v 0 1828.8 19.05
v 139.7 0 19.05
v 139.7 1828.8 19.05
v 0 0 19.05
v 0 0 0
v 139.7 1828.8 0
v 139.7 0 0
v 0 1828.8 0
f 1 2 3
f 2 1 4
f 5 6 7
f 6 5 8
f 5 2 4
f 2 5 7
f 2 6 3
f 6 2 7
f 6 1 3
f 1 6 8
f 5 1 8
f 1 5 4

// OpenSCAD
/* dimensions in mm
*/
inch = 25.4;
lumberinch = inch*0.75;
lumbertwoinch = inch*1.5;
lumbersixinch = inch*5.5;
feet = inch*12;

module onebysix(); {
    color("Peru")
    cube([lumbersixinch,feet*6,lumberinch]);
}
